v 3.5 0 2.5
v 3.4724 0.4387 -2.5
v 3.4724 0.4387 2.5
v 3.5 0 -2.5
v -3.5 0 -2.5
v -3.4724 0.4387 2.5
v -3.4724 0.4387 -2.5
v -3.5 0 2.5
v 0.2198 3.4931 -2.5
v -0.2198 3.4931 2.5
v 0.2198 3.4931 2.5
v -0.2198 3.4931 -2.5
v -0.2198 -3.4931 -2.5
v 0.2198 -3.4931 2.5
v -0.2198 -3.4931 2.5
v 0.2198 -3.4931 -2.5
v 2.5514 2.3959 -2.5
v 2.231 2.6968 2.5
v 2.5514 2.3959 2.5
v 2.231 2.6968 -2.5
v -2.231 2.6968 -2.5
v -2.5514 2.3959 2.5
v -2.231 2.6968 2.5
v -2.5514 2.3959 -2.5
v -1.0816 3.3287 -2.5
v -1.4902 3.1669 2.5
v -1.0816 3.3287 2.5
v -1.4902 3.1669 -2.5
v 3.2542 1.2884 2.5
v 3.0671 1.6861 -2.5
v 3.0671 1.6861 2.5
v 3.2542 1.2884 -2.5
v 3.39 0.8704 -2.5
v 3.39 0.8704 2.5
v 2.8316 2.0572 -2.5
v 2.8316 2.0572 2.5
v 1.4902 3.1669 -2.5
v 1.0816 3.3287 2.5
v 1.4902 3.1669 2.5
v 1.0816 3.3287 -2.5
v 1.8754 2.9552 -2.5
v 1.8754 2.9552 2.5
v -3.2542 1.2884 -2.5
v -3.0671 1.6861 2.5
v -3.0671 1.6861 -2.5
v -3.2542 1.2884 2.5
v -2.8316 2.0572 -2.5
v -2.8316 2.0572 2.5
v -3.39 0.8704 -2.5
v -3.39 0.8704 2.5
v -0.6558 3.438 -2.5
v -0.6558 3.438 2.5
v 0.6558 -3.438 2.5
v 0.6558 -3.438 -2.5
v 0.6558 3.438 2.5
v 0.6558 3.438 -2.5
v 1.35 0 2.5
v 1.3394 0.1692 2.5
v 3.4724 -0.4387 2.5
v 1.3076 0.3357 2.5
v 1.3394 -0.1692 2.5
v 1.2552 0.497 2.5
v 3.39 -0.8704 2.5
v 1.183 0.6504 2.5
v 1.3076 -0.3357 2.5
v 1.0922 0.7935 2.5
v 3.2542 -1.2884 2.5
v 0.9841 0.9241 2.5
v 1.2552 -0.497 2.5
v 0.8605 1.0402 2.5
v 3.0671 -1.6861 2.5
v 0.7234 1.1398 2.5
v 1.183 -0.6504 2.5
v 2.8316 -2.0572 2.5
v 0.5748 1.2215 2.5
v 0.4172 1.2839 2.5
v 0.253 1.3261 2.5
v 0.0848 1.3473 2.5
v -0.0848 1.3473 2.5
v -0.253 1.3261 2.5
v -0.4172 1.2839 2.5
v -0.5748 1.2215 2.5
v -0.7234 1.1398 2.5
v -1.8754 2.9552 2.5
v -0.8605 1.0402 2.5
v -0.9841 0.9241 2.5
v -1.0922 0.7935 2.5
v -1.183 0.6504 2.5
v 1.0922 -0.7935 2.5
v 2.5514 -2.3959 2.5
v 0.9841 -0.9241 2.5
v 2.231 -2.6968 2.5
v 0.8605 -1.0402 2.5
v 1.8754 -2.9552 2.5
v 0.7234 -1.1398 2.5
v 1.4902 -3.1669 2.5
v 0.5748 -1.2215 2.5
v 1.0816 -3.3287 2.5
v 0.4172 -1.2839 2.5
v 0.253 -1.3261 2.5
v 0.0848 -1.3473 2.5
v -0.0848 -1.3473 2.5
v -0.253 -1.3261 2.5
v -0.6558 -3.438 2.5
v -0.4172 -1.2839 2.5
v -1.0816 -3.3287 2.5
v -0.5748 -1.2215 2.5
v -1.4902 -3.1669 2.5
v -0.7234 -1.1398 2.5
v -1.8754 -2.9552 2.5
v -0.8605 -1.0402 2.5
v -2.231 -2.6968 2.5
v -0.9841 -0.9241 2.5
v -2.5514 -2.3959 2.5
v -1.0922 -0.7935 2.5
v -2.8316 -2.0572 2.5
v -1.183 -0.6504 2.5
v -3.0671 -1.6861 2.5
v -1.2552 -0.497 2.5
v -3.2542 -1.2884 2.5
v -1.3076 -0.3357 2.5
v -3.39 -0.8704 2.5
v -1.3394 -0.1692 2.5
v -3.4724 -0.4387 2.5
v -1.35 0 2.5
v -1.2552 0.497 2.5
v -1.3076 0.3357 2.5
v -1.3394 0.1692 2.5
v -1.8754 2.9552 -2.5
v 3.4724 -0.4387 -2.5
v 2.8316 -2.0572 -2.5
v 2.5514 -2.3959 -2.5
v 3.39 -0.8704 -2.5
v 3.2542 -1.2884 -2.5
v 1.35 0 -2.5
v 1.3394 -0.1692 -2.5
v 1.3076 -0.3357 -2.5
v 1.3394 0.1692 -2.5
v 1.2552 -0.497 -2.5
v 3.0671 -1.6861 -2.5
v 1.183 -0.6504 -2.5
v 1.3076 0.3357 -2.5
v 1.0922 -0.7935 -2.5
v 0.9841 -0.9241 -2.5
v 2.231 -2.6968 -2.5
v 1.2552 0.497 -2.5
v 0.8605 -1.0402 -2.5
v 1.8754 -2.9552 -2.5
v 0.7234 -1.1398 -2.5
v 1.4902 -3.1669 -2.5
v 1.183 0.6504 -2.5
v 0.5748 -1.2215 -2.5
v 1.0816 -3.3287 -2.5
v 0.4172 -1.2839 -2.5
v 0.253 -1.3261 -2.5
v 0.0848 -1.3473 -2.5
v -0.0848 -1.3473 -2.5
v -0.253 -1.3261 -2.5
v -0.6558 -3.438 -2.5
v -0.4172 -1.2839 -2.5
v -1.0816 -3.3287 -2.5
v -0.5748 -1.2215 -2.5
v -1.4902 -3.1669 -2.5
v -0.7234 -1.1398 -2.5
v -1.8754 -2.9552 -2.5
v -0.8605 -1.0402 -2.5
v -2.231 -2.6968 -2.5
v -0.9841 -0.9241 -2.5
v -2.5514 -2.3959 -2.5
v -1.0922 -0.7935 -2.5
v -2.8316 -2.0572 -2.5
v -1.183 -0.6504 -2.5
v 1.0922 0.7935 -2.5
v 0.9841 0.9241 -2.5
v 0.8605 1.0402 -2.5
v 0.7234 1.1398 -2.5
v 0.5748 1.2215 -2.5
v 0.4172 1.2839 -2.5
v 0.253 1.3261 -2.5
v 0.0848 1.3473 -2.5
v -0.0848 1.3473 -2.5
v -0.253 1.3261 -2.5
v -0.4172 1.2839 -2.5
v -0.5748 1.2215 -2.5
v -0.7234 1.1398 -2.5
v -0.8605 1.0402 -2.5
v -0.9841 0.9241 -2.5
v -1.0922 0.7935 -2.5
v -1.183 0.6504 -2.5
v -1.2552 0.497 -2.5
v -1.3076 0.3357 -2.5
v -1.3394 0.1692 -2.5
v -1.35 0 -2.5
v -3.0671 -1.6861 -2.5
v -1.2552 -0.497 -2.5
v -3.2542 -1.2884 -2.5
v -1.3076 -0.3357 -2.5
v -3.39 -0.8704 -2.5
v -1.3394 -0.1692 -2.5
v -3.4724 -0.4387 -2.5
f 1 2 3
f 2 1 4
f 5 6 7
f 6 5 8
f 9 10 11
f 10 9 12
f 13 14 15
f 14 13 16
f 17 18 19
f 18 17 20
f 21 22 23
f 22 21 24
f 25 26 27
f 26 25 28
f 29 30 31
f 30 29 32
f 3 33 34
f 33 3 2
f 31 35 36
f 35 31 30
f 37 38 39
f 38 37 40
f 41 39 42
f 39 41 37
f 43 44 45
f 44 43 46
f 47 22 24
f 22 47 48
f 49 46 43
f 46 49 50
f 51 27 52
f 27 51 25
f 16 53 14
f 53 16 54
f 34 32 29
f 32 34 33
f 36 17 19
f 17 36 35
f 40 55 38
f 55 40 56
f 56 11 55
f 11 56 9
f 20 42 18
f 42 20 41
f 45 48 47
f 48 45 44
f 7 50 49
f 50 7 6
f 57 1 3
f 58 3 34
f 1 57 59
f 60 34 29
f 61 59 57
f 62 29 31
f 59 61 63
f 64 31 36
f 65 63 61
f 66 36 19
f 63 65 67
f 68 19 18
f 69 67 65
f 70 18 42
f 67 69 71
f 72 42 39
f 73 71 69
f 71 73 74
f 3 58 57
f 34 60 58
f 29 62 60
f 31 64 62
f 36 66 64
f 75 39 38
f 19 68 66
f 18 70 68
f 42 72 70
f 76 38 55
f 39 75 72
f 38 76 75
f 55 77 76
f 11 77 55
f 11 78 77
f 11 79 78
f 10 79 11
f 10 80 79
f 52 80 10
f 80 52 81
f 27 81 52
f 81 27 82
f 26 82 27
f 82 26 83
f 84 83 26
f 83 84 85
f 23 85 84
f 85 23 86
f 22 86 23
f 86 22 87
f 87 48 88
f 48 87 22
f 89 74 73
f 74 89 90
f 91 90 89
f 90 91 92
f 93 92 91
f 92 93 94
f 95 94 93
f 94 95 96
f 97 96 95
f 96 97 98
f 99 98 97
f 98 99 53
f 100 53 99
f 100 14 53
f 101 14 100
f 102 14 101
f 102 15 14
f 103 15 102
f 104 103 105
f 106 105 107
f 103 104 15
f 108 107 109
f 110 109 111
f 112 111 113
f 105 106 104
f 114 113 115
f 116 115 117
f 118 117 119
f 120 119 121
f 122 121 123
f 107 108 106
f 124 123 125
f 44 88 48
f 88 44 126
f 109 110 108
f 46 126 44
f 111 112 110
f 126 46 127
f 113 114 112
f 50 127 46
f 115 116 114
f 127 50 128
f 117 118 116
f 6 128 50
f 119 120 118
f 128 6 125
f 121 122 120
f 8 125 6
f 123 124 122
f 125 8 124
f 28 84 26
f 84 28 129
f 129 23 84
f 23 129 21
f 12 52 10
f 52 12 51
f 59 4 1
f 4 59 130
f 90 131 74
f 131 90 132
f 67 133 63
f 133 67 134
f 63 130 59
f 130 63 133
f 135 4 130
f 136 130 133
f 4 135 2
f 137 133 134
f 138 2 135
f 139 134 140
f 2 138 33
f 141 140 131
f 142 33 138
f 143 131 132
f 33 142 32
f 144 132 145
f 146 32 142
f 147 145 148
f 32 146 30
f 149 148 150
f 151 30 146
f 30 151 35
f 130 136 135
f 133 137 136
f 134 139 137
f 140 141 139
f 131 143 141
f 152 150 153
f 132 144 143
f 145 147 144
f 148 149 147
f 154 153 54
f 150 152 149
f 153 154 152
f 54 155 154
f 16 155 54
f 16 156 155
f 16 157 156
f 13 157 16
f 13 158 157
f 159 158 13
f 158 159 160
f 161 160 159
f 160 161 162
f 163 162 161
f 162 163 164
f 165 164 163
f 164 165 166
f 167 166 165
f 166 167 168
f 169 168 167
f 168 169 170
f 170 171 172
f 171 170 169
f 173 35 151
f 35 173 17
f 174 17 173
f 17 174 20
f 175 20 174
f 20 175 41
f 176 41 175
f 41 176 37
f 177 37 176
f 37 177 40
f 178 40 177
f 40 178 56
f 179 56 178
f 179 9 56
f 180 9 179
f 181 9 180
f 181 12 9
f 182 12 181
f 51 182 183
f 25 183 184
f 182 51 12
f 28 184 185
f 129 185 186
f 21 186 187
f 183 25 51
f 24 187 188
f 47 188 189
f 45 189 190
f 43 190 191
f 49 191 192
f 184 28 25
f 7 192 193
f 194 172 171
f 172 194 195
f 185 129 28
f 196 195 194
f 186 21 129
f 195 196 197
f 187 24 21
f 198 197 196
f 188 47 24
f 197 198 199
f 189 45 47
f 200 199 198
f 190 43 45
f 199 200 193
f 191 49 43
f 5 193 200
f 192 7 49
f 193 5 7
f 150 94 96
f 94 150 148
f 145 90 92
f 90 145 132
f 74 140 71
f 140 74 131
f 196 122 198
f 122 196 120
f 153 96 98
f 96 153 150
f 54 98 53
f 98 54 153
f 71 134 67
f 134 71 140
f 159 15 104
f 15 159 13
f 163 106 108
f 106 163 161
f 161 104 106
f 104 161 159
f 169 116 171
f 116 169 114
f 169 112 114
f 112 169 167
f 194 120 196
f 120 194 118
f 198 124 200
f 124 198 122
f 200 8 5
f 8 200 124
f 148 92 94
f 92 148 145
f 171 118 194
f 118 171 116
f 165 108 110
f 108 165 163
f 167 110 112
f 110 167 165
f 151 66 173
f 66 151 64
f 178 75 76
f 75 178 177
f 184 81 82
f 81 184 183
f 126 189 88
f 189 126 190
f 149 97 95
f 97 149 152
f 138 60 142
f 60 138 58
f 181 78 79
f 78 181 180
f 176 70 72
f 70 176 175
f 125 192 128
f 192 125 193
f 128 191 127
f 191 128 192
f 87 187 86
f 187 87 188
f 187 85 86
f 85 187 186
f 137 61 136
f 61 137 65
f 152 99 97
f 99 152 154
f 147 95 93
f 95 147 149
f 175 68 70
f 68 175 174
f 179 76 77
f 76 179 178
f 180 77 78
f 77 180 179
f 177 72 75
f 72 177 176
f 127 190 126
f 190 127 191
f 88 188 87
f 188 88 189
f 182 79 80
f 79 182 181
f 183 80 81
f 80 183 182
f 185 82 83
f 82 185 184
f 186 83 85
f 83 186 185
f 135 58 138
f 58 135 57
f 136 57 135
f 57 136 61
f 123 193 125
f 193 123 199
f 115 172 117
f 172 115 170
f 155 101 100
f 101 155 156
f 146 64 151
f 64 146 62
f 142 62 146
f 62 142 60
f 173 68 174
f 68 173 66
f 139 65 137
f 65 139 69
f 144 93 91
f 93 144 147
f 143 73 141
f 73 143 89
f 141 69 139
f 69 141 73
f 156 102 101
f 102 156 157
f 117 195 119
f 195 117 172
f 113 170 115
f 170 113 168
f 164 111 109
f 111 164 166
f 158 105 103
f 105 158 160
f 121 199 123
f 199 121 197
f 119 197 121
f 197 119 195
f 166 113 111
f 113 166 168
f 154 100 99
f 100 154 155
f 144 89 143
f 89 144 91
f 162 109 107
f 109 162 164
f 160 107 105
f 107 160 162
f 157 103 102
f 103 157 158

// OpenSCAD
$fn = 50;


difference() {
	union() {
		translate(v = [0, 0, -2.5000000000]) {
			cylinder(h = 5, r = 3.5000000000);
		}
	}
	union() {
		translate(v = [0, 0, -100.0000000000]) {
			cylinder(h = 200, r = 1.3500000000);
		}
	}
}
